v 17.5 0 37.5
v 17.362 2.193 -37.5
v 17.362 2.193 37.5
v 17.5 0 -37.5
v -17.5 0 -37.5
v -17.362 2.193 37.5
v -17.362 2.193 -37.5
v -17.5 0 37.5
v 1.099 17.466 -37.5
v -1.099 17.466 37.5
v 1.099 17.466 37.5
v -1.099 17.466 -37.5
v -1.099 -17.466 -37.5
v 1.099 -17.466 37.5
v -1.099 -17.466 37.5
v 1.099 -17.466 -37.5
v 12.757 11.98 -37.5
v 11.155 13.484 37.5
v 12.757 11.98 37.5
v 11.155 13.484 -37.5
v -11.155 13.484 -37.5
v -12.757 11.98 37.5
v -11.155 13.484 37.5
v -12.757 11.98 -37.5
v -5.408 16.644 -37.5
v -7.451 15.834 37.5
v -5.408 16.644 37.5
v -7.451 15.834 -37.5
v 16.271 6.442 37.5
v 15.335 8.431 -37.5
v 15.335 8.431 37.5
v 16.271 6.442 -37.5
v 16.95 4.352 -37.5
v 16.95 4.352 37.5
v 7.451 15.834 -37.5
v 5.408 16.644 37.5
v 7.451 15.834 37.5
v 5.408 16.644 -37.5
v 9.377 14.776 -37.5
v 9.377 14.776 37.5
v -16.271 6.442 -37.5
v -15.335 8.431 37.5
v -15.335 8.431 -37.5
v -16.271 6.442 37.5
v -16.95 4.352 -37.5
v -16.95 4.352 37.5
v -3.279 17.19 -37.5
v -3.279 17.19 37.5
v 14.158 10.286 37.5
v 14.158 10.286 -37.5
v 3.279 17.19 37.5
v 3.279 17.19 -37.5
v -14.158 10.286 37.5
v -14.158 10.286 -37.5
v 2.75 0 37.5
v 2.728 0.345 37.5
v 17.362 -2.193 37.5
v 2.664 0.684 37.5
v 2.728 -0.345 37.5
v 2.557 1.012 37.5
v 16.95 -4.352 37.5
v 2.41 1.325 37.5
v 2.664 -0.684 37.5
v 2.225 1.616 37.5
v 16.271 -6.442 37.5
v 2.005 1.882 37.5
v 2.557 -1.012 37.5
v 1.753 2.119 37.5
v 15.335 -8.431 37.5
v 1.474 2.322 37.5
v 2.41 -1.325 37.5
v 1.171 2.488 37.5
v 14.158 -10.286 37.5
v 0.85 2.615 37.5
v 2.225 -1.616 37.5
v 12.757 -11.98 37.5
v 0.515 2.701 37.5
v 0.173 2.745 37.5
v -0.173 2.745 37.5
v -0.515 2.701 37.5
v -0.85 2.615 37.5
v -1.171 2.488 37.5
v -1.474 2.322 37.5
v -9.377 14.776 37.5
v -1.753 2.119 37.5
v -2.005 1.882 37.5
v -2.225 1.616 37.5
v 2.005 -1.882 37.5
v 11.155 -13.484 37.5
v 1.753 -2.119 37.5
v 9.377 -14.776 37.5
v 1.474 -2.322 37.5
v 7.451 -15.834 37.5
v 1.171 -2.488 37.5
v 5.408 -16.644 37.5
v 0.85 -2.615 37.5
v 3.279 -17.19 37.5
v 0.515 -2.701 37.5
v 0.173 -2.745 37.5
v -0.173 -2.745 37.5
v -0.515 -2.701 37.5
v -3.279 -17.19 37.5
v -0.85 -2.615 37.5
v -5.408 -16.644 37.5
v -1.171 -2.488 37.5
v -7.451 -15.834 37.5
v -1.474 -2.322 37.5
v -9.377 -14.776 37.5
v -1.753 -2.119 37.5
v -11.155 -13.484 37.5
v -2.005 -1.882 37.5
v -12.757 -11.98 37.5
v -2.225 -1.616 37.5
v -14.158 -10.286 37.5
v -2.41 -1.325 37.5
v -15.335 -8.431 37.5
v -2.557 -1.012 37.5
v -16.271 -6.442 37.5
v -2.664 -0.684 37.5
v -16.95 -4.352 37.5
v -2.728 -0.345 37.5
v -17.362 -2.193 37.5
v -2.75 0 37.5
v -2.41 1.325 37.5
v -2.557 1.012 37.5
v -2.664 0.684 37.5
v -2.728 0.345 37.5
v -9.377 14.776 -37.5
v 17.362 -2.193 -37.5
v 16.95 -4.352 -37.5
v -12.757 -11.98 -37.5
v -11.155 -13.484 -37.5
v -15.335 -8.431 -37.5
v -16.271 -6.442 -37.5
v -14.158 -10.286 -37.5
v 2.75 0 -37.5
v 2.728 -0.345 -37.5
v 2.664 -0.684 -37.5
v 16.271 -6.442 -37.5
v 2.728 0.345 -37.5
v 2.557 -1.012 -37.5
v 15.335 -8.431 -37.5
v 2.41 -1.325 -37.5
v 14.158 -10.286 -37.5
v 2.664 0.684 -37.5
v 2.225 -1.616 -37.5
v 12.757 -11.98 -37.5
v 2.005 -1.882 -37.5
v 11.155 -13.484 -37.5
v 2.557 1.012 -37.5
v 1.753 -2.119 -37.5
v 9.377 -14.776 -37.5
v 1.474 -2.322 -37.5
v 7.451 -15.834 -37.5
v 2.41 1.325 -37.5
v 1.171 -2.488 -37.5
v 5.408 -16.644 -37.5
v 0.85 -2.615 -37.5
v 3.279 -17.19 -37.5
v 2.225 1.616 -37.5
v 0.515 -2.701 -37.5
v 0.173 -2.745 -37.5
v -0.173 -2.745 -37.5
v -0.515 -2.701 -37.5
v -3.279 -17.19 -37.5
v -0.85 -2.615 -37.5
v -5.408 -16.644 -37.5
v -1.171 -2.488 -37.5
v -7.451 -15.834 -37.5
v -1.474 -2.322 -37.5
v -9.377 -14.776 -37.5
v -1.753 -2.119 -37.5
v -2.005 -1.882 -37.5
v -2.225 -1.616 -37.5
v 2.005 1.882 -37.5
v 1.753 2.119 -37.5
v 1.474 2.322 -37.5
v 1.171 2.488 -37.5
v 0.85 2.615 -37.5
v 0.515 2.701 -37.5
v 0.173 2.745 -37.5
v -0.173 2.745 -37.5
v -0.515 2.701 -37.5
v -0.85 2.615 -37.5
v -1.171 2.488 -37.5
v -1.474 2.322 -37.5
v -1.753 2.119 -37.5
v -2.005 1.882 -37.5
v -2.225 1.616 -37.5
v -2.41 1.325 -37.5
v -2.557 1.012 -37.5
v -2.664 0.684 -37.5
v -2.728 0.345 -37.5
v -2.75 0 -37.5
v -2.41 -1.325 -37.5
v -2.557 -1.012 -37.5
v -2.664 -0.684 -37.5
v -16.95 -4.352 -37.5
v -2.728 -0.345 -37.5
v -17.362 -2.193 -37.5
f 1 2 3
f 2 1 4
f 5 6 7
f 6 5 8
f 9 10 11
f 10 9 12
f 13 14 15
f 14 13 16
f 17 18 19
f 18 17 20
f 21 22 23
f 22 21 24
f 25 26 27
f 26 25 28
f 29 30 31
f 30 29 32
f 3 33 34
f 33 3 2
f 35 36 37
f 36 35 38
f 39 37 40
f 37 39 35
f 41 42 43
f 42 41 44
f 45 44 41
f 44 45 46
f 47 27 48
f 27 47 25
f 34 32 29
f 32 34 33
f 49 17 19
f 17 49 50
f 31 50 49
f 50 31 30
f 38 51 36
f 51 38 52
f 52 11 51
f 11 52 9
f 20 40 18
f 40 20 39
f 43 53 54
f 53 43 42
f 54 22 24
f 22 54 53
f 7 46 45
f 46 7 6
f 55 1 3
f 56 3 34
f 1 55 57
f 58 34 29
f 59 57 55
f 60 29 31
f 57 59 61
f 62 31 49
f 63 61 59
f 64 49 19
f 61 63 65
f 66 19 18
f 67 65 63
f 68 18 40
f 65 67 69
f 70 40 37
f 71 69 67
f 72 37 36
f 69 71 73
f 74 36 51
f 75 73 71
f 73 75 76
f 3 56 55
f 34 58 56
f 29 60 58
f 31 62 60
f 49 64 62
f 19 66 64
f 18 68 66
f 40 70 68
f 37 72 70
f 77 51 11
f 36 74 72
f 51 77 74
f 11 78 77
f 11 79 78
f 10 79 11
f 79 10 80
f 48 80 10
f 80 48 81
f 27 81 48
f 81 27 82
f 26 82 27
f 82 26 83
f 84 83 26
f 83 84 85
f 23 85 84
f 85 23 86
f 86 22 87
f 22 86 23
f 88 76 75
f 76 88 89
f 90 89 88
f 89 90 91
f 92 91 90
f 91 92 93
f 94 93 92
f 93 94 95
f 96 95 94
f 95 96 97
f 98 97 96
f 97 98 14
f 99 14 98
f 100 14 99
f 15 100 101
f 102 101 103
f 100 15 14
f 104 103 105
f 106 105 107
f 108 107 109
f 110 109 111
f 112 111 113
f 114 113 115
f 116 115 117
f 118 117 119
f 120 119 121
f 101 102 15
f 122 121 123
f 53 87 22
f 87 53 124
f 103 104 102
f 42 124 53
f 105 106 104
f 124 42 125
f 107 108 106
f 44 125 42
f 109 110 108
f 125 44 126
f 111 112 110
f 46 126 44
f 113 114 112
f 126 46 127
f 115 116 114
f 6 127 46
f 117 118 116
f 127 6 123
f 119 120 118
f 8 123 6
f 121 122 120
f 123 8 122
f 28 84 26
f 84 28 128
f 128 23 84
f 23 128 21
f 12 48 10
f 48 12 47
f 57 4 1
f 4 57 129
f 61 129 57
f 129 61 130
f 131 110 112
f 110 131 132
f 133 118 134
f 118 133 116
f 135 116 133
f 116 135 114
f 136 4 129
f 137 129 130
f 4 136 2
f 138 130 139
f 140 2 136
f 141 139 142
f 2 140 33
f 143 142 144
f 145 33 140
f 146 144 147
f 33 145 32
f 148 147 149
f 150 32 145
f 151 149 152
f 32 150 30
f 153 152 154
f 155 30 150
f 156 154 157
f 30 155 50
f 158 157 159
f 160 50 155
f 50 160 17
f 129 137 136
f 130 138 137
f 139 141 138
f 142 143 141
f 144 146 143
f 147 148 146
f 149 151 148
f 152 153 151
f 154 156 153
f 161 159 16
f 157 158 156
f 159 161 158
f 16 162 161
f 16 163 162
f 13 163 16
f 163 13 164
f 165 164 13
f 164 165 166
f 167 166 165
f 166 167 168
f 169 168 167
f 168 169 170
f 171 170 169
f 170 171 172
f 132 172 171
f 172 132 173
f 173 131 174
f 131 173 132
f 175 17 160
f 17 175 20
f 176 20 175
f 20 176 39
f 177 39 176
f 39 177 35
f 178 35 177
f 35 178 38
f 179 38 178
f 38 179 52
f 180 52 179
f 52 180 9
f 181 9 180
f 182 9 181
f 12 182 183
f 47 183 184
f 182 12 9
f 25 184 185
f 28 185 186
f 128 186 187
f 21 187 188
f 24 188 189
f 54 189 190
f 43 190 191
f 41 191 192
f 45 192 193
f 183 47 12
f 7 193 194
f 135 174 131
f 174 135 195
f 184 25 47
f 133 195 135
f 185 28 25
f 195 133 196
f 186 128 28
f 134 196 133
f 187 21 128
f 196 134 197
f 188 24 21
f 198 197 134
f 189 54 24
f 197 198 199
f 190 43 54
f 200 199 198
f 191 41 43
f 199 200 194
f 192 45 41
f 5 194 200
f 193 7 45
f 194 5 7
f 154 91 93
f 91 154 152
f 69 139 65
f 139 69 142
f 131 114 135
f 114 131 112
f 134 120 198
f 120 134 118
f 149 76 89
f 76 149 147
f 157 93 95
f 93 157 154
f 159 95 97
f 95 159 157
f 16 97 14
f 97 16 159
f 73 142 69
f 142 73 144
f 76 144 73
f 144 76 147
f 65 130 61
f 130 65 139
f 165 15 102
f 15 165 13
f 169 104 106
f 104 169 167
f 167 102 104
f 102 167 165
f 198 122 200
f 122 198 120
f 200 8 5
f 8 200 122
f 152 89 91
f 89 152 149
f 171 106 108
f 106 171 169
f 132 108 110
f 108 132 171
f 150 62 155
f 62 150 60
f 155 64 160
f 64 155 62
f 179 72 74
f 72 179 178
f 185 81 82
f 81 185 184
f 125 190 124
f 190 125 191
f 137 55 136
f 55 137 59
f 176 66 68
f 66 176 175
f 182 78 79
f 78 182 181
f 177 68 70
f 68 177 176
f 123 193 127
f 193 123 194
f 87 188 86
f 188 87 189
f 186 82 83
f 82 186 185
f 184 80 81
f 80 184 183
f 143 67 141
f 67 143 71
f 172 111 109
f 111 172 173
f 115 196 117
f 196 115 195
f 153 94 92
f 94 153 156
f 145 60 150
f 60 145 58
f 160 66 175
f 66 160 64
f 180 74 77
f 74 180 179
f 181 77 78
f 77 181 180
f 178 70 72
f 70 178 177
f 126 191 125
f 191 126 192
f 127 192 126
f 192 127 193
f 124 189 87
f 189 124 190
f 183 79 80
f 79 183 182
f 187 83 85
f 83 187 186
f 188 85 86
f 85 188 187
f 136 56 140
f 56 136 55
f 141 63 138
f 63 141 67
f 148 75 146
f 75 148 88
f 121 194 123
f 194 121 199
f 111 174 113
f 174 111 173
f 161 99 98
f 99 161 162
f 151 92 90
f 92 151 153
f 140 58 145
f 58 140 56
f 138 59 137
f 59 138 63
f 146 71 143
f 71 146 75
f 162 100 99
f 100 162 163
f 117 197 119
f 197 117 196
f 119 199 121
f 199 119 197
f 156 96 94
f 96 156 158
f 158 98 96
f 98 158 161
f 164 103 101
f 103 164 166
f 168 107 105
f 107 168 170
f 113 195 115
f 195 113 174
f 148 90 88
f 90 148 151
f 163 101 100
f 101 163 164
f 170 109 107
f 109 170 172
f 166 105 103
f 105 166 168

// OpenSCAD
$fn = 50;


difference() {
	union() {
		translate(v = [0, 0, -37.5000000000]) {
			cylinder(h = 75, r = 17.5000000000);
		}
	}
	union() {
		translate(v = [0, 0, -100.0000000000]) {
			cylinder(h = 200, r = 2.7500000000);
		}
	}
}
